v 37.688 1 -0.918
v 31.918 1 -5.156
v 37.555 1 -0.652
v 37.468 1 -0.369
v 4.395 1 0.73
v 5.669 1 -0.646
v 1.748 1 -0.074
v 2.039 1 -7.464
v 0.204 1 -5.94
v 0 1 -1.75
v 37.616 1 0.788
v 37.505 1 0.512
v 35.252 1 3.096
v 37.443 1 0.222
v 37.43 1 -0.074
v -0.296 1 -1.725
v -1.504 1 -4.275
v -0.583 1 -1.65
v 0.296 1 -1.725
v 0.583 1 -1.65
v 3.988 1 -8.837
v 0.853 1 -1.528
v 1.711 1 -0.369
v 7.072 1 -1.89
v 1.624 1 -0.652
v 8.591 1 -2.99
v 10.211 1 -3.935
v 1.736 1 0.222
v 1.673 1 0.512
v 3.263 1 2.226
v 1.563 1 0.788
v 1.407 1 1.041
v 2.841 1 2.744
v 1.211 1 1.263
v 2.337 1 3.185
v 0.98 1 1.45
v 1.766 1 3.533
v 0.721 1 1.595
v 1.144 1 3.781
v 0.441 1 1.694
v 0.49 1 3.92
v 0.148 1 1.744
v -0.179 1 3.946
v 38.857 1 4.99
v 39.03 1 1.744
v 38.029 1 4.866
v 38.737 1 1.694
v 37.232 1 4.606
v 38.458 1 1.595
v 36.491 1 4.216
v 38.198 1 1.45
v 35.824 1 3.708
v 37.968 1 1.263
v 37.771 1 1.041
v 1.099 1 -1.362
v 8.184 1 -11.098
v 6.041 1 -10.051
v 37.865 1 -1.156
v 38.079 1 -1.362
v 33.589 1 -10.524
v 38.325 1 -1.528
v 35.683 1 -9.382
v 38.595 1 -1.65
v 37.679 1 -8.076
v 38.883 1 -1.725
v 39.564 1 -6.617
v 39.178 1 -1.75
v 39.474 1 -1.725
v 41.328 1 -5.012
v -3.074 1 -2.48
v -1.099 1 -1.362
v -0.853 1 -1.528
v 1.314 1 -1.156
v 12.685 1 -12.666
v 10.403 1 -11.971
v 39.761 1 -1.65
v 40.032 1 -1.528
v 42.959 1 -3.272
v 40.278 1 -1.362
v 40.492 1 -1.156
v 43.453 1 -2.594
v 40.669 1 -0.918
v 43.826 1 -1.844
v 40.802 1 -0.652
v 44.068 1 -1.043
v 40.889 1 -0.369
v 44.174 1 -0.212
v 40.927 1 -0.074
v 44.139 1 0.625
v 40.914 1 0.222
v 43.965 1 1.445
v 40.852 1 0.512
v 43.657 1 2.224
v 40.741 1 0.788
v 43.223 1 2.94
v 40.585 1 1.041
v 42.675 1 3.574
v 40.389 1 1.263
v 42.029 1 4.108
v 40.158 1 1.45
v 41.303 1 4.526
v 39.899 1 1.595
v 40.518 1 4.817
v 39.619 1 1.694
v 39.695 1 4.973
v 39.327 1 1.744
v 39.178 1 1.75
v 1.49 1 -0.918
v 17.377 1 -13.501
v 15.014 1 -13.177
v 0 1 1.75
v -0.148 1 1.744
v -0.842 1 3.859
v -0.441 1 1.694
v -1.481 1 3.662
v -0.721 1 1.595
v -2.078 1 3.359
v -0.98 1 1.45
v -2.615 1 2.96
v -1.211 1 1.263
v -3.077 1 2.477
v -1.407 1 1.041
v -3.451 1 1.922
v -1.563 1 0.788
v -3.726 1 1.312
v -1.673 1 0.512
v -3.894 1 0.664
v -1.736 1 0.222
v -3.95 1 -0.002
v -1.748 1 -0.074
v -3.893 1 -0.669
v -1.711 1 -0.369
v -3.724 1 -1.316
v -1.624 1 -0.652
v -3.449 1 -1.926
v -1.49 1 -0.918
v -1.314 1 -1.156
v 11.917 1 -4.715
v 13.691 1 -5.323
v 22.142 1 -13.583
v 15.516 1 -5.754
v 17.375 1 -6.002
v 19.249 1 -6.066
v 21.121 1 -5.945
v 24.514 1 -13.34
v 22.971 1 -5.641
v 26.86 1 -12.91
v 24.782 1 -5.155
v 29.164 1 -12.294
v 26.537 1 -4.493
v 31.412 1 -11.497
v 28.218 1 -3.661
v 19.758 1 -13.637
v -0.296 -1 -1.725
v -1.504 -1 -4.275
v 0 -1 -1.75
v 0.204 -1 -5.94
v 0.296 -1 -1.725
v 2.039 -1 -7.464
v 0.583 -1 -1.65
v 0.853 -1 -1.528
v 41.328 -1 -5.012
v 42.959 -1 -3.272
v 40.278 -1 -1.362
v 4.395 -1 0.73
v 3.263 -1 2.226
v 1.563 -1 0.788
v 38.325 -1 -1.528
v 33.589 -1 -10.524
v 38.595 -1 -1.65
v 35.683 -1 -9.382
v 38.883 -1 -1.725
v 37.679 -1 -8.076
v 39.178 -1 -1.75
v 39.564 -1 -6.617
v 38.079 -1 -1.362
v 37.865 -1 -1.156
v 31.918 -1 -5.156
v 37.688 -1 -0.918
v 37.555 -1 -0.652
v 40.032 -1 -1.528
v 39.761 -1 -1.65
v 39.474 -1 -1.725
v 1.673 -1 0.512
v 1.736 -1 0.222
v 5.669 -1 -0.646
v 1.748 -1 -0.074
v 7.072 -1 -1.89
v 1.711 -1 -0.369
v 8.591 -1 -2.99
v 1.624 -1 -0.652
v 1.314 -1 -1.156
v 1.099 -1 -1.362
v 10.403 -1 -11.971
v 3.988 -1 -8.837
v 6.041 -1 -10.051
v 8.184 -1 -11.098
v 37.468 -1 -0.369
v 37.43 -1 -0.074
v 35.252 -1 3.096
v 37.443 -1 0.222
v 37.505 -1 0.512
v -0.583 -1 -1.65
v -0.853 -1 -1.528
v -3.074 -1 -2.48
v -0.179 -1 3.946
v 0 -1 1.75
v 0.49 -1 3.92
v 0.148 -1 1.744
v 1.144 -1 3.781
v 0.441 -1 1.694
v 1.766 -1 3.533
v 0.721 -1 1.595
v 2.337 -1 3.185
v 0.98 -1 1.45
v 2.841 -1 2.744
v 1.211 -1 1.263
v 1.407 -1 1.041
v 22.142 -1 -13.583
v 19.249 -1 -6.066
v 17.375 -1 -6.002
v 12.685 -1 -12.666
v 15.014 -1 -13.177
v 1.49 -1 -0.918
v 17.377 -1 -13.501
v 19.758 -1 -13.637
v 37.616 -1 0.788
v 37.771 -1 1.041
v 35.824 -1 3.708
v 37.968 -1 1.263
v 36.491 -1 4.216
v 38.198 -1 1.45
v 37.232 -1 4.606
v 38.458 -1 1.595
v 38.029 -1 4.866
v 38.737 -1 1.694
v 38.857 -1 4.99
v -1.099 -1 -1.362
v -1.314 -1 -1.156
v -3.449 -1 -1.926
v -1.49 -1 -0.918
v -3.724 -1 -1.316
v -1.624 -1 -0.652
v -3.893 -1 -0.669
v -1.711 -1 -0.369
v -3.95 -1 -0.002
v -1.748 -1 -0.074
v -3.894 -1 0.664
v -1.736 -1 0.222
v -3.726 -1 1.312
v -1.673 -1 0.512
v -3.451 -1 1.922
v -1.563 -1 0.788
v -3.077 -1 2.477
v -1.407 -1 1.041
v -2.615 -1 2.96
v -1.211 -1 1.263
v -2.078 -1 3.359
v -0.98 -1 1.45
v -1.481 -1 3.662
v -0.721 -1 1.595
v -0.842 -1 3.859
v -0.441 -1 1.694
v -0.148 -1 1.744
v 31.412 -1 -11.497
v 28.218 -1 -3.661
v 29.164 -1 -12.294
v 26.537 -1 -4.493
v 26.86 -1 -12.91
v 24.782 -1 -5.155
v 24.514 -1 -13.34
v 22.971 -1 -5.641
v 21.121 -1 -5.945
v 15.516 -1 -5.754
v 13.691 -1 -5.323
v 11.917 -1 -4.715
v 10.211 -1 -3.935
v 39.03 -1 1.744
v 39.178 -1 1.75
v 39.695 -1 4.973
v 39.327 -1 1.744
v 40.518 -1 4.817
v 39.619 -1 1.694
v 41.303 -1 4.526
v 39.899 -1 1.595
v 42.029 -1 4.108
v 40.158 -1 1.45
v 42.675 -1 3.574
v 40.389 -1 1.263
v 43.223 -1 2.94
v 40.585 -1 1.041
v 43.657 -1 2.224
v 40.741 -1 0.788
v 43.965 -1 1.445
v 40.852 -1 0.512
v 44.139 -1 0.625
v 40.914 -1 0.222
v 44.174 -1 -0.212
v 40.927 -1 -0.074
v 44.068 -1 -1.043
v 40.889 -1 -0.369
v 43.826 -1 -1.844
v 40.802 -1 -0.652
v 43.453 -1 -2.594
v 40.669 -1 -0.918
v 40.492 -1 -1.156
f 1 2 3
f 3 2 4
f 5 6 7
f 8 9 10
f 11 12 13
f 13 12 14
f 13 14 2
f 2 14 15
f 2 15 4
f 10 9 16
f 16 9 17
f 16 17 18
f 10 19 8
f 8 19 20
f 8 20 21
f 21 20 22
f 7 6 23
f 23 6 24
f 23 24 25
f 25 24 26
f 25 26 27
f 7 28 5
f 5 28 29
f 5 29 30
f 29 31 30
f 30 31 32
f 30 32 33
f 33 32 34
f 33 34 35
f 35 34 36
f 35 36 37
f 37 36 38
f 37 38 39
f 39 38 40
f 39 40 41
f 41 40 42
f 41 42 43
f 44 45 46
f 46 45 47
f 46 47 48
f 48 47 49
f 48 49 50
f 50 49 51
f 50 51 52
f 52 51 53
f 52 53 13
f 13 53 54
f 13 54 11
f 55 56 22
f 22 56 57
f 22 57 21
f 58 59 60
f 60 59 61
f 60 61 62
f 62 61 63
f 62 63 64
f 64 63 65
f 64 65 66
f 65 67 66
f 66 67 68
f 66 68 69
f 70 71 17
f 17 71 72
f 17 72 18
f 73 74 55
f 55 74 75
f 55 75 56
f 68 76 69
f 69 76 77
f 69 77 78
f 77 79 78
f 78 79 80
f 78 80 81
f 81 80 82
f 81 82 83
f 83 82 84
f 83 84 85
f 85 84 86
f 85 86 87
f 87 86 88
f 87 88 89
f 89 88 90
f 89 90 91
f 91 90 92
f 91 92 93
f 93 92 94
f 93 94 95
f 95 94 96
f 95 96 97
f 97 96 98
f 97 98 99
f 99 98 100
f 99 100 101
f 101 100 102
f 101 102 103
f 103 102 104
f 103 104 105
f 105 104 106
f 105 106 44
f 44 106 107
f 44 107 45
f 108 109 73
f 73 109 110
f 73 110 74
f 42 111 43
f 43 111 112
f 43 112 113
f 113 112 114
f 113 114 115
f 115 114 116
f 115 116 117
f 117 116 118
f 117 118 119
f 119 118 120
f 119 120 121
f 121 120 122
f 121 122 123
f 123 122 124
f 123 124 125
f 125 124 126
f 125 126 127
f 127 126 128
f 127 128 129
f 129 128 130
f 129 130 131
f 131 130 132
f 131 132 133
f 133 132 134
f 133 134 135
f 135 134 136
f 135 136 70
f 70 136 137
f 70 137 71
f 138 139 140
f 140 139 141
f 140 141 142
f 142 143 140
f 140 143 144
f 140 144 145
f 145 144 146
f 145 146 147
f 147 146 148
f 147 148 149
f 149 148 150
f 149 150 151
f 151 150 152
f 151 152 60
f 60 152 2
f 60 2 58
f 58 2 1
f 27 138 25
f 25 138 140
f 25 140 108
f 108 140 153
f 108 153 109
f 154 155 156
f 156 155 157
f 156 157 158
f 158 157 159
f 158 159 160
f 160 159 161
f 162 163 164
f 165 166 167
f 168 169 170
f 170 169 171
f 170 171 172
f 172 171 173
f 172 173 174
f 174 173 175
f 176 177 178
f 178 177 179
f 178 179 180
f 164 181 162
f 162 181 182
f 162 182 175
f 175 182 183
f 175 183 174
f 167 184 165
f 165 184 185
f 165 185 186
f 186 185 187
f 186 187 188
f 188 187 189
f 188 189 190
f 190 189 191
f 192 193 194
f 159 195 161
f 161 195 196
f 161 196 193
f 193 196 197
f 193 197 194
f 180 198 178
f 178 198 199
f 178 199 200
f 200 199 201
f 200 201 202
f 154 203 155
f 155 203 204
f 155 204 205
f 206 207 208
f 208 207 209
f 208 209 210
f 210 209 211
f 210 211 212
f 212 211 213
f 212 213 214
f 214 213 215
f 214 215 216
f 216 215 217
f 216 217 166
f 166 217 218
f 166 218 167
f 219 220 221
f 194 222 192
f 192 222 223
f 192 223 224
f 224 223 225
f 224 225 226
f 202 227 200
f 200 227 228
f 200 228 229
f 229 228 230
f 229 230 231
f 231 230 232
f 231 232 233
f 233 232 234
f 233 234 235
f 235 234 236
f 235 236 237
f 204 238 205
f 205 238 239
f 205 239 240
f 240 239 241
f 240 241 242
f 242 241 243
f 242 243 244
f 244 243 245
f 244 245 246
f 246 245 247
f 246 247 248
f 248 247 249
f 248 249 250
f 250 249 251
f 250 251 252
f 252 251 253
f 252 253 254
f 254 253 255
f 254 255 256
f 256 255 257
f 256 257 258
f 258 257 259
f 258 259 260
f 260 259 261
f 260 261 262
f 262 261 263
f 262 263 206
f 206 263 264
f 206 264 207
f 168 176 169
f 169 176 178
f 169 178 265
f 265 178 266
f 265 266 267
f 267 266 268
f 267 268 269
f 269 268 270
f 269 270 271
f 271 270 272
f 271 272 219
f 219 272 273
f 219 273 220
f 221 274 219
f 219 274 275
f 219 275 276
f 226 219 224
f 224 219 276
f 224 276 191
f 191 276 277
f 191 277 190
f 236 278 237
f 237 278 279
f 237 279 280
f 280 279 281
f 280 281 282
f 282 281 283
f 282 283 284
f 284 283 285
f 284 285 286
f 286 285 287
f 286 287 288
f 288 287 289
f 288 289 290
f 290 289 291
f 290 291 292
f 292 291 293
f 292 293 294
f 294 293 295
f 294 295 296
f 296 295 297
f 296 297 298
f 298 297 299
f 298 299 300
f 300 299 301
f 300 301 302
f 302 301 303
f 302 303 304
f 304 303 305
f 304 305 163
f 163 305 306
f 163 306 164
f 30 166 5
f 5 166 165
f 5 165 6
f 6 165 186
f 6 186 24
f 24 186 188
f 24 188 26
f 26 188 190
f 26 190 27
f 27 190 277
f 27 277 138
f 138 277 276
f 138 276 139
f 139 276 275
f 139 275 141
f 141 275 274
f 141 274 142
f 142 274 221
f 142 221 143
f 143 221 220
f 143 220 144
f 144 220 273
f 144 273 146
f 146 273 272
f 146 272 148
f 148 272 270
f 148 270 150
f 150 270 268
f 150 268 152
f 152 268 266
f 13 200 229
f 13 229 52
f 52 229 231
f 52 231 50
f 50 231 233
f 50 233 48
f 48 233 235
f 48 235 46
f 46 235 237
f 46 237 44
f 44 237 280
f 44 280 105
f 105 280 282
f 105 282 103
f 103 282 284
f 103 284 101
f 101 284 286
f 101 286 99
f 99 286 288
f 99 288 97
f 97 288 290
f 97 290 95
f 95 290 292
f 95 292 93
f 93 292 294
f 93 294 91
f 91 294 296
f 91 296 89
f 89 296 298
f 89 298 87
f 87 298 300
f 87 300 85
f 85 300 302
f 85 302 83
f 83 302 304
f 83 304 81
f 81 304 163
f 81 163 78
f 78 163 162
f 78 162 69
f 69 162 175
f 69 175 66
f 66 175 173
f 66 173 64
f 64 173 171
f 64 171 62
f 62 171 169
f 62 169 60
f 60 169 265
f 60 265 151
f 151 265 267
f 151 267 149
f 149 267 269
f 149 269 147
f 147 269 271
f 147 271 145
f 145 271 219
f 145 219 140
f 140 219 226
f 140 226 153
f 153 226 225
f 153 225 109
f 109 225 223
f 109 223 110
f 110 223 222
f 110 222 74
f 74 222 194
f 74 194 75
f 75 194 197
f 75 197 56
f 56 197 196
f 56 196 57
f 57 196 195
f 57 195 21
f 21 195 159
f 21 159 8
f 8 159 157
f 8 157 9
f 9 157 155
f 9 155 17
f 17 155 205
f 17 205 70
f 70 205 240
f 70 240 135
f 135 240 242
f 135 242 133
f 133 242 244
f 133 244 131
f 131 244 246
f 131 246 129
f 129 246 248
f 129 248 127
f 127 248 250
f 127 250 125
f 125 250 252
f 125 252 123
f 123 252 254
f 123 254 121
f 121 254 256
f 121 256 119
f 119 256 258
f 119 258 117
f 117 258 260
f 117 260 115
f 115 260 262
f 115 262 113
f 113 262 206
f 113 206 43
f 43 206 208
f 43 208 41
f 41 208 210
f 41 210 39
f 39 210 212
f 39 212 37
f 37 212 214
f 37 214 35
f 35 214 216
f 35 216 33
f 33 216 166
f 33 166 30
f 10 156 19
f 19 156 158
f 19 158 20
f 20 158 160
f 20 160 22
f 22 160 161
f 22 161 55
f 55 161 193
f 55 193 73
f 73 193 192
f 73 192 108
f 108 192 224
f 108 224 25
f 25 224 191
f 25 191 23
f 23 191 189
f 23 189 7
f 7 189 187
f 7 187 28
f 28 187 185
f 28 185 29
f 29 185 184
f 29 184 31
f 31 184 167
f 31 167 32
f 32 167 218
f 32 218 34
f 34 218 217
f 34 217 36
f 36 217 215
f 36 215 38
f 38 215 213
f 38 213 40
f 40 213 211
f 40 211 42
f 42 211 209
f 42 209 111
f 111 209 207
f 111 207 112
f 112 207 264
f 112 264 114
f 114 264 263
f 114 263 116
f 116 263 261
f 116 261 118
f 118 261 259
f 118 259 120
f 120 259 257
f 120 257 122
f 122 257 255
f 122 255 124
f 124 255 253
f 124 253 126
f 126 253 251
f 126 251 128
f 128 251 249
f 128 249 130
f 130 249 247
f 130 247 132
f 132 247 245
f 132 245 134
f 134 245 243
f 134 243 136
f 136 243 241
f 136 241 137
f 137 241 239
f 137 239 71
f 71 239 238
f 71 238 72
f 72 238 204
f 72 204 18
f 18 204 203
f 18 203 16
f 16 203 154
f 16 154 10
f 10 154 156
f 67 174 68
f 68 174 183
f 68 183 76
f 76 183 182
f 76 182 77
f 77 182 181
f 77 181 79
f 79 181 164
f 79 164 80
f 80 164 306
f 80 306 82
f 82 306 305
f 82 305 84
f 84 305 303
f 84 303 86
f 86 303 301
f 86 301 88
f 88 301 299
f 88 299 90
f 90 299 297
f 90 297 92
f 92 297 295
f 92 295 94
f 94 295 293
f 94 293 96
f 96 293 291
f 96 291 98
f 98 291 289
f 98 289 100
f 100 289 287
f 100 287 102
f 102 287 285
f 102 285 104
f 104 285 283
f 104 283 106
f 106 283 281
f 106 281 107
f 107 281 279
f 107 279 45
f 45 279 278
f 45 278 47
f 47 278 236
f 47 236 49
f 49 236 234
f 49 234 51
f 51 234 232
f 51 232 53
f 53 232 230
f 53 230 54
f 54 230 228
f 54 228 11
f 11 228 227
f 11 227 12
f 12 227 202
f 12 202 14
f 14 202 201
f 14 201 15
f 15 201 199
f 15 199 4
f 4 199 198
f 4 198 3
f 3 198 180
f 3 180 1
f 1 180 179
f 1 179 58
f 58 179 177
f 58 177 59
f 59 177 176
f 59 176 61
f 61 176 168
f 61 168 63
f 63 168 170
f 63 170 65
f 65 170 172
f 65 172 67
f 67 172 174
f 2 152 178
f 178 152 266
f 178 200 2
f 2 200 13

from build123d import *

# Parameters (mm, degrees)
SKETCH1_R               = 1.75
BOSS_EXTRUDE1_DEPTH     = 1
CUT_EXTRUDE1_DEPTH      = 47.247436748
CUT_EXTRUDE1_DEPTH_BACK = 47.247436748


with BuildPart() as part:
    # Sketch1 → Boss-Extrude1 (new, symmetric)
    with BuildSketch(Plane(origin=(0, 0, 0), x_dir=(1, 0, 0), z_dir=(0, 1, 0))):
        with BuildLine():
            ThreePointArc((-3.074068123, 2.480444551), (-2.35494781, -3.171233327), (3.263278519, -2.225648963))
            ThreePointArc((3.263278519, -2.225648963), (19.240732221, 6.066624624), (34.966250056, -2.694021293))
            ThreePointArc((34.966250056, -2.694021293), (42.169032262, -4.007012426), (42.959429057, 3.271674965))
            ThreePointArc((42.959429057, 3.271674965), (19.757716522, 13.637194671), (-3.074068123, 2.480444551))
        make_face()
        with Locations(Location((0, 0, 0), (0, 0, 270))):
            Circle(SKETCH1_R, mode=Mode.SUBTRACT)
        with Locations(Location((39.178405, 0, 0), (0, 0, 270))):
            Circle(SKETCH1_R, mode=Mode.SUBTRACT)
    extrude(amount=BOSS_EXTRUDE1_DEPTH, both=True)

    # Sketch2 → Cut-Extrude1 (cut, two sides: drawn at the far end of the back side and taken through both)
    with BuildSketch(Plane(origin=(0, 0, 0), x_dir=(1, 0, 0), z_dir=(0, 1, 0)).offset(-CUT_EXTRUDE1_DEPTH_BACK)):
        Polygon((36.17646787, -5.383387255), (31.918373047, 5.155767261), (14.230811062, -1.990471652), (18.488905885, -12.529626168), align=None)
    extrude(amount=CUT_EXTRUDE1_DEPTH + CUT_EXTRUDE1_DEPTH_BACK, mode=Mode.SUBTRACT)


solid = part.part
